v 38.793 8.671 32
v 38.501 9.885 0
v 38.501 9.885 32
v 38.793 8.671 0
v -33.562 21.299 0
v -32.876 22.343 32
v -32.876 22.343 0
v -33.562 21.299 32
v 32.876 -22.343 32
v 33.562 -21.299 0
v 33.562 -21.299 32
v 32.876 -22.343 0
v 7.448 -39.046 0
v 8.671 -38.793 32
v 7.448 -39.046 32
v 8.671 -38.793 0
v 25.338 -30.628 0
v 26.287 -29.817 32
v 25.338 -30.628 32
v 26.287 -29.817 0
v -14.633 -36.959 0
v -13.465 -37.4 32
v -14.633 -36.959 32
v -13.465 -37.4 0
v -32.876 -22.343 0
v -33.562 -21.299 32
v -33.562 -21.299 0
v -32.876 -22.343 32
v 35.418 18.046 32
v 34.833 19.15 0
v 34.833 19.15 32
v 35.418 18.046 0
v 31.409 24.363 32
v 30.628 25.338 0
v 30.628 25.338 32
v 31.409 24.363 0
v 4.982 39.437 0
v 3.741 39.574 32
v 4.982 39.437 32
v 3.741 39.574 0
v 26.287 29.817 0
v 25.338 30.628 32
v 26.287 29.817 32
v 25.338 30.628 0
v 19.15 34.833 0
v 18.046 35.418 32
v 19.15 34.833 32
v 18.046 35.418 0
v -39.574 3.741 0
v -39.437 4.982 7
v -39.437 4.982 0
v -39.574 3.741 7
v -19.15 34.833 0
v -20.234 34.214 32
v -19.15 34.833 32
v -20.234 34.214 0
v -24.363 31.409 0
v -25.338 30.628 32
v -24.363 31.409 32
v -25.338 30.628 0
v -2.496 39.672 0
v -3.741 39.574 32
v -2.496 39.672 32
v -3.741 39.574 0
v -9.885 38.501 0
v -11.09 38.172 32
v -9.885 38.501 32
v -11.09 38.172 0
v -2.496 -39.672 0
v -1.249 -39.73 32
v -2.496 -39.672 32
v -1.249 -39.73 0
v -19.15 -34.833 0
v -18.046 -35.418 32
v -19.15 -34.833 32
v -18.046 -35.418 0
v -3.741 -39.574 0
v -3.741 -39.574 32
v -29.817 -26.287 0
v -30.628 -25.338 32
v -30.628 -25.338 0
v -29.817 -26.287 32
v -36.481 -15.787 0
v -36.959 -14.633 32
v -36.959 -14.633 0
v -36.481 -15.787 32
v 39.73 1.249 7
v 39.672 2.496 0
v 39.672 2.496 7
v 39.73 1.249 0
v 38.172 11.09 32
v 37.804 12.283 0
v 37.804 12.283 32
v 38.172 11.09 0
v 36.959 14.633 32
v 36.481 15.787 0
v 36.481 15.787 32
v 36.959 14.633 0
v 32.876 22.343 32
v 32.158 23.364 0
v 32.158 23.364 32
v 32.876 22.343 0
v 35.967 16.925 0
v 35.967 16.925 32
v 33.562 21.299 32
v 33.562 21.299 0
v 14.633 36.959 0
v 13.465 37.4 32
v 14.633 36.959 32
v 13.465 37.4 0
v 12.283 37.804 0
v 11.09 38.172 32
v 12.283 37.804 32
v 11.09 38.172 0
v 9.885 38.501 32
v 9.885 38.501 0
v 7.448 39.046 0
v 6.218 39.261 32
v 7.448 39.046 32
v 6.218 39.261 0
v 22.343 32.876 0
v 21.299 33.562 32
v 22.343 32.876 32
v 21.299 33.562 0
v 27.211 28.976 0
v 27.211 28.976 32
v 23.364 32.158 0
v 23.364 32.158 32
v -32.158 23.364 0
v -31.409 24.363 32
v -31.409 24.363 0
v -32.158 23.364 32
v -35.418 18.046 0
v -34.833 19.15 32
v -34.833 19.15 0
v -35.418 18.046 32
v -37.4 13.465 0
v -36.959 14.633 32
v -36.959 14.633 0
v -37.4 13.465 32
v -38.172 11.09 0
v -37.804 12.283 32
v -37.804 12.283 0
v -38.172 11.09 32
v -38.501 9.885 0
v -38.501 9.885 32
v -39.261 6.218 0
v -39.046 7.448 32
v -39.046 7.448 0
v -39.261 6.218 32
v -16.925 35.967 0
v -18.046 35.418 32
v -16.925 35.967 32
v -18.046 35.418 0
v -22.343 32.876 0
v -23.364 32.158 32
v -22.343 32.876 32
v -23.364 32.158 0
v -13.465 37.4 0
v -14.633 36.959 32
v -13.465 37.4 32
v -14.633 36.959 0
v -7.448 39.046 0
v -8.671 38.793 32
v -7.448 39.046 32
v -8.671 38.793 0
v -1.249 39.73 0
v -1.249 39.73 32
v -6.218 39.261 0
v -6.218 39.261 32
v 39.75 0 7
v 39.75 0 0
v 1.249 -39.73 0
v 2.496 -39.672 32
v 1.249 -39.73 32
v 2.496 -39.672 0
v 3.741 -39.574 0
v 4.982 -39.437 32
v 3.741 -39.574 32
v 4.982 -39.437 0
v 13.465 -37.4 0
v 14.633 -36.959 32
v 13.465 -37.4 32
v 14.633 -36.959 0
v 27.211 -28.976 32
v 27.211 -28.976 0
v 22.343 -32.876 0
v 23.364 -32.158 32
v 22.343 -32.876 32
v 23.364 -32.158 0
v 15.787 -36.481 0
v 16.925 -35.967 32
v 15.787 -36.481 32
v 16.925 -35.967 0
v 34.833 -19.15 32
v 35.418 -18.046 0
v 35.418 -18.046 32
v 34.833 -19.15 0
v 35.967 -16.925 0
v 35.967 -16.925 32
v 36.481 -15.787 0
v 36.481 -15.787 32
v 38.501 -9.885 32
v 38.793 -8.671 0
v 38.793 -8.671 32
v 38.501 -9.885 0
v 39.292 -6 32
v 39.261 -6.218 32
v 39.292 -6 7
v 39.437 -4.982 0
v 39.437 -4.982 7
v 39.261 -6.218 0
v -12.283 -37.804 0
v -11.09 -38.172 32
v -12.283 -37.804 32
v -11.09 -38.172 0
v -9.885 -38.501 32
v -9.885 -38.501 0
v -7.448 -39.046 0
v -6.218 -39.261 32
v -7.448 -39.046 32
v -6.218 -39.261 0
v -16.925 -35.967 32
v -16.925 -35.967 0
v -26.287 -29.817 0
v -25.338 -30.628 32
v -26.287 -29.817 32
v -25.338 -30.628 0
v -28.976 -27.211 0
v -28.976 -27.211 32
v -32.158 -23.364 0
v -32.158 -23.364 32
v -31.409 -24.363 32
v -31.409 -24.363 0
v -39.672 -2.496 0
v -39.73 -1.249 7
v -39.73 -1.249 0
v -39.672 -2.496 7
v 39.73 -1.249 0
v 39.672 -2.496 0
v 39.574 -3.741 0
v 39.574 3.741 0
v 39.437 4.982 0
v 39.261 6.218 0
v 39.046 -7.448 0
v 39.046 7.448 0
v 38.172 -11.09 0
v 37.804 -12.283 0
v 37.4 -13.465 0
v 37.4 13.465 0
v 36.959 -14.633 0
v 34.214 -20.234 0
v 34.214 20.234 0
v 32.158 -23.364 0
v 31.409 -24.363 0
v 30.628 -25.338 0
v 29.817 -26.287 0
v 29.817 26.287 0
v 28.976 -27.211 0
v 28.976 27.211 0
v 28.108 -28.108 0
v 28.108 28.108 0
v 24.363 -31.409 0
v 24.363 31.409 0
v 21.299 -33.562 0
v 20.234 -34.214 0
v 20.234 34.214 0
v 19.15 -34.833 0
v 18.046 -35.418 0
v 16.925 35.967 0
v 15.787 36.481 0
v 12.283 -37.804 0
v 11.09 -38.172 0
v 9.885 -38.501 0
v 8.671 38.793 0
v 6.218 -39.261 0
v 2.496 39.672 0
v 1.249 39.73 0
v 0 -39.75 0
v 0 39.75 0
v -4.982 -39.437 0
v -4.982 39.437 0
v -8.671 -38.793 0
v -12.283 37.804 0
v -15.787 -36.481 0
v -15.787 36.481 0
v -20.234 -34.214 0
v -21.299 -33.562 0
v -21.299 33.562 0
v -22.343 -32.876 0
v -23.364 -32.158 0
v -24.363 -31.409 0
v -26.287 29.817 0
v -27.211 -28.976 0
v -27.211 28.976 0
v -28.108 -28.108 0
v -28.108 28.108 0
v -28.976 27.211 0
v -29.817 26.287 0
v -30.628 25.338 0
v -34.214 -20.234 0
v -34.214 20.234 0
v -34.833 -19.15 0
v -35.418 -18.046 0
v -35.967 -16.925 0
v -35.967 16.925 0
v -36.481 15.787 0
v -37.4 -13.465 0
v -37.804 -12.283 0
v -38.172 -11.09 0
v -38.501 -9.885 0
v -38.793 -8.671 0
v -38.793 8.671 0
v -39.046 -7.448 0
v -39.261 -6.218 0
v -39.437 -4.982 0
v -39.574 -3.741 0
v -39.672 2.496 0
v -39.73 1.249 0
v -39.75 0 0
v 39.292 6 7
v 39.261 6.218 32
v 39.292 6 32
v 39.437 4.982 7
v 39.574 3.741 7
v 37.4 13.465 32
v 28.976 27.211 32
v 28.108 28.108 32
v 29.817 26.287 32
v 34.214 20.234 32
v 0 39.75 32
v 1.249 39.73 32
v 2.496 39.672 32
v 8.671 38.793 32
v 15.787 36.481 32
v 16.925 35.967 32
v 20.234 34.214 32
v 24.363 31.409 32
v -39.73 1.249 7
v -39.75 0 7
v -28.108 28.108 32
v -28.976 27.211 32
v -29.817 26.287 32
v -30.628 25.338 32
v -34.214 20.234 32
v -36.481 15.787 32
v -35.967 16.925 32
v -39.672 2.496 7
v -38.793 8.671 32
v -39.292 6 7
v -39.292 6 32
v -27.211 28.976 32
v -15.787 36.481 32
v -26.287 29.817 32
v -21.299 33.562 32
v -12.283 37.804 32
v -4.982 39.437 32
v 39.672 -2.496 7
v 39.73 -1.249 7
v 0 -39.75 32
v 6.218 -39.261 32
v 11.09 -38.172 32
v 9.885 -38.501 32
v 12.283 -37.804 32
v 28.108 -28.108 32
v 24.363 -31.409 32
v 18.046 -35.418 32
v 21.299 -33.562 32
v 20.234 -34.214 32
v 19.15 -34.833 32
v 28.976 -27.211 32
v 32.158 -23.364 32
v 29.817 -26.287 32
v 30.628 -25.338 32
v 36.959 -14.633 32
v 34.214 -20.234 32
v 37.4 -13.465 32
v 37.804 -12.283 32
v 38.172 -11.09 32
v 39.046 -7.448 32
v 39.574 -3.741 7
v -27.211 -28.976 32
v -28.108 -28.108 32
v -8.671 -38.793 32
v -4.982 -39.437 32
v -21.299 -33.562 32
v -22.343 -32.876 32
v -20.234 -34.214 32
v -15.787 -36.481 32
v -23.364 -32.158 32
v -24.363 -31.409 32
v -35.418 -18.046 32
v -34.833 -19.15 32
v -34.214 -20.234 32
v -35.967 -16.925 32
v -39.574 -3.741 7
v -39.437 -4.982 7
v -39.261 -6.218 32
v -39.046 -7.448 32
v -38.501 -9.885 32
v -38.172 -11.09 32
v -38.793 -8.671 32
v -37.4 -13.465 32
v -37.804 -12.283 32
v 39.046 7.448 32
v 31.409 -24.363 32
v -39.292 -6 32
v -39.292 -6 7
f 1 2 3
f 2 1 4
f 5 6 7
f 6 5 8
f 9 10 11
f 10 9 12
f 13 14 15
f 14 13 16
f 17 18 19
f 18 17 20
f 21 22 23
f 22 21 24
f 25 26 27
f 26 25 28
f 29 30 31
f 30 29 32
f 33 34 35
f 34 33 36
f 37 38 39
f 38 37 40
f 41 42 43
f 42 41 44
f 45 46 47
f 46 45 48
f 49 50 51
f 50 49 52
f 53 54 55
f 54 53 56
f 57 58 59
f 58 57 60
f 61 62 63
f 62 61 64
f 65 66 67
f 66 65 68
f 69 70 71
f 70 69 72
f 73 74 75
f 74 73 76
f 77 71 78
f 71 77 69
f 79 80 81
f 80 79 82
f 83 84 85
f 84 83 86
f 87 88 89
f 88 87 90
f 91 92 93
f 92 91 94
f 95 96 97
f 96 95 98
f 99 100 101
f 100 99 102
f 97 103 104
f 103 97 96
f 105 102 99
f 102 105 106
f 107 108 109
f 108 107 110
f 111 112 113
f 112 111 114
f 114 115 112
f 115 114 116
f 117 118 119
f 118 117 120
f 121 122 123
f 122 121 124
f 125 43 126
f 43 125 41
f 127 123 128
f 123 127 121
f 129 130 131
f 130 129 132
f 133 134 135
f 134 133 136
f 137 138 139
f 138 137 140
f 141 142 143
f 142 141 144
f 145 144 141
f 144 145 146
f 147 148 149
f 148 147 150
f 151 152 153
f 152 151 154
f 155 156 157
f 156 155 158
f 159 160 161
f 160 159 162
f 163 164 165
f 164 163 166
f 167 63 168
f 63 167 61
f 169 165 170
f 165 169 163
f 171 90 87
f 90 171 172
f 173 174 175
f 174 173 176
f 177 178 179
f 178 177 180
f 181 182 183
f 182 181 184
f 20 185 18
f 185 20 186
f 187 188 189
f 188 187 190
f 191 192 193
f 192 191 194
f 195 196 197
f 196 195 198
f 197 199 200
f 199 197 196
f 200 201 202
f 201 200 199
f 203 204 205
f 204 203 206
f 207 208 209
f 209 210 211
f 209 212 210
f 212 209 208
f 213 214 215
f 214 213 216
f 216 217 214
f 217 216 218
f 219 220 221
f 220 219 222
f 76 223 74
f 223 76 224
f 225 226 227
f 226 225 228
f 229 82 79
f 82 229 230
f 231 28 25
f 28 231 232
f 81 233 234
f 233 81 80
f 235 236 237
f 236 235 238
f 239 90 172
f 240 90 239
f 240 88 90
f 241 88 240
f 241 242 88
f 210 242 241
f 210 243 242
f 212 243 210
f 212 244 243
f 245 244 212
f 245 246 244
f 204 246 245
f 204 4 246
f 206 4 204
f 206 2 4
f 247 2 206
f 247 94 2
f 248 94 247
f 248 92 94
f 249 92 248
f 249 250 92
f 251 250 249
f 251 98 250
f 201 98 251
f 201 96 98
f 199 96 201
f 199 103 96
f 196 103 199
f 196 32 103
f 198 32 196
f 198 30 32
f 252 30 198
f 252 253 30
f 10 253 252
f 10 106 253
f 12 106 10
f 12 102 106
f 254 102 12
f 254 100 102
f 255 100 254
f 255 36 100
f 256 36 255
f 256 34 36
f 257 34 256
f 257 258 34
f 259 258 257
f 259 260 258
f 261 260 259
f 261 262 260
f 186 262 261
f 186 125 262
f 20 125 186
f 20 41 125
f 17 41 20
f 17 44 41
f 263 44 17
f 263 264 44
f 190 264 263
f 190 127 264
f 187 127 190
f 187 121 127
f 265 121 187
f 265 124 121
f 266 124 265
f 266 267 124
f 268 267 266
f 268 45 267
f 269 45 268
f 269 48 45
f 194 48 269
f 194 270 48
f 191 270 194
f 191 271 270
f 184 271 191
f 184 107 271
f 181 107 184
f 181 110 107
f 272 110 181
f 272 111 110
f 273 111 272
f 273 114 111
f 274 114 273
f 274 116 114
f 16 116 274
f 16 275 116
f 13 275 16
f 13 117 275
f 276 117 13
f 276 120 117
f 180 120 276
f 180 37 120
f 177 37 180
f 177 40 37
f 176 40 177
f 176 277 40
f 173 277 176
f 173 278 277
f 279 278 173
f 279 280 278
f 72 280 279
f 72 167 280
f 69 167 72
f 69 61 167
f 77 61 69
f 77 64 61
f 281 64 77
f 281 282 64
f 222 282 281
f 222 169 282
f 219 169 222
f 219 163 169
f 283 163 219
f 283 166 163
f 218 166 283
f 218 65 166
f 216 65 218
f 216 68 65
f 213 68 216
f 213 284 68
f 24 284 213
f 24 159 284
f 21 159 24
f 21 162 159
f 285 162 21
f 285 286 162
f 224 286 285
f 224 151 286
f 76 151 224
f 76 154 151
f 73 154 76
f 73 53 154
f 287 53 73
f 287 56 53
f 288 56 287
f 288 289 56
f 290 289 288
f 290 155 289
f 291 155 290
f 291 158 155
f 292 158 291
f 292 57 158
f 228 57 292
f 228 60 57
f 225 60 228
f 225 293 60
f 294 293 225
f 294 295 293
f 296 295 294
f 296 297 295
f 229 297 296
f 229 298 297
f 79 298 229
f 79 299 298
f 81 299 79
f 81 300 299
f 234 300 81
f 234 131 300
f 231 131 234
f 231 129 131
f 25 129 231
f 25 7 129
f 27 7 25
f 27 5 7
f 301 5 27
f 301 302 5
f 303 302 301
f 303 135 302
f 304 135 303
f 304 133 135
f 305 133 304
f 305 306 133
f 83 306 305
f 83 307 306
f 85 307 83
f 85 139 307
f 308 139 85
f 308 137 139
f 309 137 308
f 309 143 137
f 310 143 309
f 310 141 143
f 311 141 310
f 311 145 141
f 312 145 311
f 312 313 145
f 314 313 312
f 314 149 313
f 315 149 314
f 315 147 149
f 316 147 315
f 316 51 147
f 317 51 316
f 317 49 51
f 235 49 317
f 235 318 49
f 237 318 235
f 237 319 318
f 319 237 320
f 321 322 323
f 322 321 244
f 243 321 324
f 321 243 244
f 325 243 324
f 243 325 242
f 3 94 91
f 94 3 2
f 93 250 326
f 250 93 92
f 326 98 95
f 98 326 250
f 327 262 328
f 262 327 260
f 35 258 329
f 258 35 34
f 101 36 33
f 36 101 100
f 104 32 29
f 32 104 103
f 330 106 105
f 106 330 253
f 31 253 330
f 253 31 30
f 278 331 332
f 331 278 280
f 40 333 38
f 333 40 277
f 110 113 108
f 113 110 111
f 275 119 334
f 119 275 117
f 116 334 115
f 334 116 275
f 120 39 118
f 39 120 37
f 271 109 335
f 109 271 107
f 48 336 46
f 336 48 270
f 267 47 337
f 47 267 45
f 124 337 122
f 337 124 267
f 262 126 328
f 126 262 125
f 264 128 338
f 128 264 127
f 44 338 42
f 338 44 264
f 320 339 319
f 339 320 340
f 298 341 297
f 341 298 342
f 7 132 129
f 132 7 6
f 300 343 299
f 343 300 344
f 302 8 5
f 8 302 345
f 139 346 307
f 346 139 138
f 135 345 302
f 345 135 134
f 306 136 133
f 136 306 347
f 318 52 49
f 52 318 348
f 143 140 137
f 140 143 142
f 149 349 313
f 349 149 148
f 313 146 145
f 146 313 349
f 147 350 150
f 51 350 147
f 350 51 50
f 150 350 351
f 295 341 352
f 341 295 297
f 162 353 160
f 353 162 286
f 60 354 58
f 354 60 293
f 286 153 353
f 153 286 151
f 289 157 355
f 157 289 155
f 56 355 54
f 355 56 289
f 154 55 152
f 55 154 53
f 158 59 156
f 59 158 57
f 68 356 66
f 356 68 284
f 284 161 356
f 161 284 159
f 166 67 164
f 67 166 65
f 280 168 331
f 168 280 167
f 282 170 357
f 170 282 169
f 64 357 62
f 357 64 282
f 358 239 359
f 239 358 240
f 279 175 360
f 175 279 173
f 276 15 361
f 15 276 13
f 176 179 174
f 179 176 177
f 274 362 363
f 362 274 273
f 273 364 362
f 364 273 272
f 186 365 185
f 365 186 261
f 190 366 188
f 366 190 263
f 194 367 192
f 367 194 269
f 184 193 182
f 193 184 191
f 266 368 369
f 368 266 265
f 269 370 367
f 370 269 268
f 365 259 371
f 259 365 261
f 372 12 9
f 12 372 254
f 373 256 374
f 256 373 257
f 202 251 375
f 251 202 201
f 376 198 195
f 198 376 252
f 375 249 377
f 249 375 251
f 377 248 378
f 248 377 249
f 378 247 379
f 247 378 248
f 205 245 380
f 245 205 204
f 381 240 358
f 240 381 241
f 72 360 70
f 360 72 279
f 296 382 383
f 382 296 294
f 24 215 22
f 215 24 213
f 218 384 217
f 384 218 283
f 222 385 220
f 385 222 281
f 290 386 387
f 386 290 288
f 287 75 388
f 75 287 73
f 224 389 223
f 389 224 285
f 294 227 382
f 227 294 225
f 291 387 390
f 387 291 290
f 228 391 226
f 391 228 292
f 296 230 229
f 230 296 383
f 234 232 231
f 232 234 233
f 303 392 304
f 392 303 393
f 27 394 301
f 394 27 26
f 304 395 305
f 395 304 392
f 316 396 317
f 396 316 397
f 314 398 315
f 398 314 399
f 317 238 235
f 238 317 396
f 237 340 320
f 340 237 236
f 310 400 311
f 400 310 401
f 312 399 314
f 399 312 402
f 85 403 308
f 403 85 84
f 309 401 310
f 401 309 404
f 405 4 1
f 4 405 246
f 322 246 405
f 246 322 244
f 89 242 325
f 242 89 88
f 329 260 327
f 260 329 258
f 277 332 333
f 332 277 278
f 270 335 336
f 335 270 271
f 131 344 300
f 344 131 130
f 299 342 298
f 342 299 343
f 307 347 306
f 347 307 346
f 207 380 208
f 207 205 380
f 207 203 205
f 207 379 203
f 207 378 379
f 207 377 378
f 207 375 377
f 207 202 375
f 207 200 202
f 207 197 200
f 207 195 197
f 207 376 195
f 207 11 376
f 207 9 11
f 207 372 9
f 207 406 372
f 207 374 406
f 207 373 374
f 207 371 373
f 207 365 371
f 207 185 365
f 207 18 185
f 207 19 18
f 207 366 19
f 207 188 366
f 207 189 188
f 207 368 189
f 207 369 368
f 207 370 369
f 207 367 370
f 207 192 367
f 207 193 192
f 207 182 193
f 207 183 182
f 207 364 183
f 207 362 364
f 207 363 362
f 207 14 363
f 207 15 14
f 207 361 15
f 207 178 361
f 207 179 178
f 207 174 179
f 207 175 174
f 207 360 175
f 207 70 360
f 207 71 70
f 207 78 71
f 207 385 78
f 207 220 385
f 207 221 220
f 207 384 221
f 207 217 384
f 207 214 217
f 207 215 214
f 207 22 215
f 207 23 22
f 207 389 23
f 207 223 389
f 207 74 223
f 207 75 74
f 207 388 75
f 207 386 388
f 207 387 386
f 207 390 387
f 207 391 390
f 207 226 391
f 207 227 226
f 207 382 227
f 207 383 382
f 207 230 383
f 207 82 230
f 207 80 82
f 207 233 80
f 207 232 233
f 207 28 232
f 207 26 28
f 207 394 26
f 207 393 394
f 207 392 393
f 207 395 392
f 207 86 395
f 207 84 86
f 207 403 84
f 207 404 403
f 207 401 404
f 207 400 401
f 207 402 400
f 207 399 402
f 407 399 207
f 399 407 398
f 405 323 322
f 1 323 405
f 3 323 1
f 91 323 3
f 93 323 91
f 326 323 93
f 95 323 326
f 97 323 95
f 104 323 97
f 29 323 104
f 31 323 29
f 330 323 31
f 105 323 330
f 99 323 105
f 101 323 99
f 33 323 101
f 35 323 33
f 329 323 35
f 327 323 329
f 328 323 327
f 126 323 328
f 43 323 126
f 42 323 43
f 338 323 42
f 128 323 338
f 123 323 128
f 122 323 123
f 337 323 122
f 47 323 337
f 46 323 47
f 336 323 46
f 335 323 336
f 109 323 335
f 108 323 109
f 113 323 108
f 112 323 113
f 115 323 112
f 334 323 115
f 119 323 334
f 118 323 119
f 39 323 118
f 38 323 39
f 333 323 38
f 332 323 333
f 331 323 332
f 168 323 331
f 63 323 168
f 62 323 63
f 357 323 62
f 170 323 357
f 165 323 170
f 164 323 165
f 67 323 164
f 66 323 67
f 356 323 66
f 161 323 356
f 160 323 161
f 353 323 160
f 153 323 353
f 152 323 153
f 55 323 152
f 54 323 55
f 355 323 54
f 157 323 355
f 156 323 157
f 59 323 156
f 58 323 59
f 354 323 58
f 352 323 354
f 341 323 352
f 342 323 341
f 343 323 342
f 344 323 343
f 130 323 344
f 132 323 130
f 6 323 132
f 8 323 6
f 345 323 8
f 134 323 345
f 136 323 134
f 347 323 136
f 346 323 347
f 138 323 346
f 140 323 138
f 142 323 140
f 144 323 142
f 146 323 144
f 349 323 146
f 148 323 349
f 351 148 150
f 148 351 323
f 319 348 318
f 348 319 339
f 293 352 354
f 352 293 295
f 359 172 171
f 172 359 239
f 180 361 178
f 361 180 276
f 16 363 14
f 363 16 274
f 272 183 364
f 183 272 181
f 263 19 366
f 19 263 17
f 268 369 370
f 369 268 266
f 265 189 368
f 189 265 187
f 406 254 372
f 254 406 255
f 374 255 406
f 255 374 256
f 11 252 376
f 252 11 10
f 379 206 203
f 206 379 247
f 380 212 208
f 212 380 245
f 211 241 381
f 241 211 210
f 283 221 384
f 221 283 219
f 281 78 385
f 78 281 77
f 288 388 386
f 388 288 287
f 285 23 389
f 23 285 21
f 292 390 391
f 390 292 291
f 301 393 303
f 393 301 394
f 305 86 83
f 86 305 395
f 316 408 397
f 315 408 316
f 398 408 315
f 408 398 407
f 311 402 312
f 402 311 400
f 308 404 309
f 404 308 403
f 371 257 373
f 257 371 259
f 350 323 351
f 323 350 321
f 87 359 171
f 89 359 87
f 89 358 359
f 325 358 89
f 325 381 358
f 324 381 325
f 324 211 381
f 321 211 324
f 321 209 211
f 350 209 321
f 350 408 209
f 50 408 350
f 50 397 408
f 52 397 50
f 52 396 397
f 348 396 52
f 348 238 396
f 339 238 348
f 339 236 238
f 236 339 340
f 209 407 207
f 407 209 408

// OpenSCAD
$fn=200;
groove=12;
groove_h=25;
side=35;
puck=79.5;
base_h=7;
inner_d=groove+side*2;
pad=0.1;
padd=pad*2;
outer_d=puck;
total_h=base_h+groove_h;


difference(){ 
    union() {
        cylinder(d=outer_d,h=total_h);
    }
    translate([-outer_d,-groove/2,base_h])
    cube([outer_d*2,groove,total_h+pad]);
    translate([-outer_d/2,groove/2+side,-pad])
    cube([outer_d,outer_d,total_h+padd]);

    translate([-outer_d/2,-outer_d-groove/2-side,-pad])
    cube([outer_d,outer_d,total_h+padd]);
}
